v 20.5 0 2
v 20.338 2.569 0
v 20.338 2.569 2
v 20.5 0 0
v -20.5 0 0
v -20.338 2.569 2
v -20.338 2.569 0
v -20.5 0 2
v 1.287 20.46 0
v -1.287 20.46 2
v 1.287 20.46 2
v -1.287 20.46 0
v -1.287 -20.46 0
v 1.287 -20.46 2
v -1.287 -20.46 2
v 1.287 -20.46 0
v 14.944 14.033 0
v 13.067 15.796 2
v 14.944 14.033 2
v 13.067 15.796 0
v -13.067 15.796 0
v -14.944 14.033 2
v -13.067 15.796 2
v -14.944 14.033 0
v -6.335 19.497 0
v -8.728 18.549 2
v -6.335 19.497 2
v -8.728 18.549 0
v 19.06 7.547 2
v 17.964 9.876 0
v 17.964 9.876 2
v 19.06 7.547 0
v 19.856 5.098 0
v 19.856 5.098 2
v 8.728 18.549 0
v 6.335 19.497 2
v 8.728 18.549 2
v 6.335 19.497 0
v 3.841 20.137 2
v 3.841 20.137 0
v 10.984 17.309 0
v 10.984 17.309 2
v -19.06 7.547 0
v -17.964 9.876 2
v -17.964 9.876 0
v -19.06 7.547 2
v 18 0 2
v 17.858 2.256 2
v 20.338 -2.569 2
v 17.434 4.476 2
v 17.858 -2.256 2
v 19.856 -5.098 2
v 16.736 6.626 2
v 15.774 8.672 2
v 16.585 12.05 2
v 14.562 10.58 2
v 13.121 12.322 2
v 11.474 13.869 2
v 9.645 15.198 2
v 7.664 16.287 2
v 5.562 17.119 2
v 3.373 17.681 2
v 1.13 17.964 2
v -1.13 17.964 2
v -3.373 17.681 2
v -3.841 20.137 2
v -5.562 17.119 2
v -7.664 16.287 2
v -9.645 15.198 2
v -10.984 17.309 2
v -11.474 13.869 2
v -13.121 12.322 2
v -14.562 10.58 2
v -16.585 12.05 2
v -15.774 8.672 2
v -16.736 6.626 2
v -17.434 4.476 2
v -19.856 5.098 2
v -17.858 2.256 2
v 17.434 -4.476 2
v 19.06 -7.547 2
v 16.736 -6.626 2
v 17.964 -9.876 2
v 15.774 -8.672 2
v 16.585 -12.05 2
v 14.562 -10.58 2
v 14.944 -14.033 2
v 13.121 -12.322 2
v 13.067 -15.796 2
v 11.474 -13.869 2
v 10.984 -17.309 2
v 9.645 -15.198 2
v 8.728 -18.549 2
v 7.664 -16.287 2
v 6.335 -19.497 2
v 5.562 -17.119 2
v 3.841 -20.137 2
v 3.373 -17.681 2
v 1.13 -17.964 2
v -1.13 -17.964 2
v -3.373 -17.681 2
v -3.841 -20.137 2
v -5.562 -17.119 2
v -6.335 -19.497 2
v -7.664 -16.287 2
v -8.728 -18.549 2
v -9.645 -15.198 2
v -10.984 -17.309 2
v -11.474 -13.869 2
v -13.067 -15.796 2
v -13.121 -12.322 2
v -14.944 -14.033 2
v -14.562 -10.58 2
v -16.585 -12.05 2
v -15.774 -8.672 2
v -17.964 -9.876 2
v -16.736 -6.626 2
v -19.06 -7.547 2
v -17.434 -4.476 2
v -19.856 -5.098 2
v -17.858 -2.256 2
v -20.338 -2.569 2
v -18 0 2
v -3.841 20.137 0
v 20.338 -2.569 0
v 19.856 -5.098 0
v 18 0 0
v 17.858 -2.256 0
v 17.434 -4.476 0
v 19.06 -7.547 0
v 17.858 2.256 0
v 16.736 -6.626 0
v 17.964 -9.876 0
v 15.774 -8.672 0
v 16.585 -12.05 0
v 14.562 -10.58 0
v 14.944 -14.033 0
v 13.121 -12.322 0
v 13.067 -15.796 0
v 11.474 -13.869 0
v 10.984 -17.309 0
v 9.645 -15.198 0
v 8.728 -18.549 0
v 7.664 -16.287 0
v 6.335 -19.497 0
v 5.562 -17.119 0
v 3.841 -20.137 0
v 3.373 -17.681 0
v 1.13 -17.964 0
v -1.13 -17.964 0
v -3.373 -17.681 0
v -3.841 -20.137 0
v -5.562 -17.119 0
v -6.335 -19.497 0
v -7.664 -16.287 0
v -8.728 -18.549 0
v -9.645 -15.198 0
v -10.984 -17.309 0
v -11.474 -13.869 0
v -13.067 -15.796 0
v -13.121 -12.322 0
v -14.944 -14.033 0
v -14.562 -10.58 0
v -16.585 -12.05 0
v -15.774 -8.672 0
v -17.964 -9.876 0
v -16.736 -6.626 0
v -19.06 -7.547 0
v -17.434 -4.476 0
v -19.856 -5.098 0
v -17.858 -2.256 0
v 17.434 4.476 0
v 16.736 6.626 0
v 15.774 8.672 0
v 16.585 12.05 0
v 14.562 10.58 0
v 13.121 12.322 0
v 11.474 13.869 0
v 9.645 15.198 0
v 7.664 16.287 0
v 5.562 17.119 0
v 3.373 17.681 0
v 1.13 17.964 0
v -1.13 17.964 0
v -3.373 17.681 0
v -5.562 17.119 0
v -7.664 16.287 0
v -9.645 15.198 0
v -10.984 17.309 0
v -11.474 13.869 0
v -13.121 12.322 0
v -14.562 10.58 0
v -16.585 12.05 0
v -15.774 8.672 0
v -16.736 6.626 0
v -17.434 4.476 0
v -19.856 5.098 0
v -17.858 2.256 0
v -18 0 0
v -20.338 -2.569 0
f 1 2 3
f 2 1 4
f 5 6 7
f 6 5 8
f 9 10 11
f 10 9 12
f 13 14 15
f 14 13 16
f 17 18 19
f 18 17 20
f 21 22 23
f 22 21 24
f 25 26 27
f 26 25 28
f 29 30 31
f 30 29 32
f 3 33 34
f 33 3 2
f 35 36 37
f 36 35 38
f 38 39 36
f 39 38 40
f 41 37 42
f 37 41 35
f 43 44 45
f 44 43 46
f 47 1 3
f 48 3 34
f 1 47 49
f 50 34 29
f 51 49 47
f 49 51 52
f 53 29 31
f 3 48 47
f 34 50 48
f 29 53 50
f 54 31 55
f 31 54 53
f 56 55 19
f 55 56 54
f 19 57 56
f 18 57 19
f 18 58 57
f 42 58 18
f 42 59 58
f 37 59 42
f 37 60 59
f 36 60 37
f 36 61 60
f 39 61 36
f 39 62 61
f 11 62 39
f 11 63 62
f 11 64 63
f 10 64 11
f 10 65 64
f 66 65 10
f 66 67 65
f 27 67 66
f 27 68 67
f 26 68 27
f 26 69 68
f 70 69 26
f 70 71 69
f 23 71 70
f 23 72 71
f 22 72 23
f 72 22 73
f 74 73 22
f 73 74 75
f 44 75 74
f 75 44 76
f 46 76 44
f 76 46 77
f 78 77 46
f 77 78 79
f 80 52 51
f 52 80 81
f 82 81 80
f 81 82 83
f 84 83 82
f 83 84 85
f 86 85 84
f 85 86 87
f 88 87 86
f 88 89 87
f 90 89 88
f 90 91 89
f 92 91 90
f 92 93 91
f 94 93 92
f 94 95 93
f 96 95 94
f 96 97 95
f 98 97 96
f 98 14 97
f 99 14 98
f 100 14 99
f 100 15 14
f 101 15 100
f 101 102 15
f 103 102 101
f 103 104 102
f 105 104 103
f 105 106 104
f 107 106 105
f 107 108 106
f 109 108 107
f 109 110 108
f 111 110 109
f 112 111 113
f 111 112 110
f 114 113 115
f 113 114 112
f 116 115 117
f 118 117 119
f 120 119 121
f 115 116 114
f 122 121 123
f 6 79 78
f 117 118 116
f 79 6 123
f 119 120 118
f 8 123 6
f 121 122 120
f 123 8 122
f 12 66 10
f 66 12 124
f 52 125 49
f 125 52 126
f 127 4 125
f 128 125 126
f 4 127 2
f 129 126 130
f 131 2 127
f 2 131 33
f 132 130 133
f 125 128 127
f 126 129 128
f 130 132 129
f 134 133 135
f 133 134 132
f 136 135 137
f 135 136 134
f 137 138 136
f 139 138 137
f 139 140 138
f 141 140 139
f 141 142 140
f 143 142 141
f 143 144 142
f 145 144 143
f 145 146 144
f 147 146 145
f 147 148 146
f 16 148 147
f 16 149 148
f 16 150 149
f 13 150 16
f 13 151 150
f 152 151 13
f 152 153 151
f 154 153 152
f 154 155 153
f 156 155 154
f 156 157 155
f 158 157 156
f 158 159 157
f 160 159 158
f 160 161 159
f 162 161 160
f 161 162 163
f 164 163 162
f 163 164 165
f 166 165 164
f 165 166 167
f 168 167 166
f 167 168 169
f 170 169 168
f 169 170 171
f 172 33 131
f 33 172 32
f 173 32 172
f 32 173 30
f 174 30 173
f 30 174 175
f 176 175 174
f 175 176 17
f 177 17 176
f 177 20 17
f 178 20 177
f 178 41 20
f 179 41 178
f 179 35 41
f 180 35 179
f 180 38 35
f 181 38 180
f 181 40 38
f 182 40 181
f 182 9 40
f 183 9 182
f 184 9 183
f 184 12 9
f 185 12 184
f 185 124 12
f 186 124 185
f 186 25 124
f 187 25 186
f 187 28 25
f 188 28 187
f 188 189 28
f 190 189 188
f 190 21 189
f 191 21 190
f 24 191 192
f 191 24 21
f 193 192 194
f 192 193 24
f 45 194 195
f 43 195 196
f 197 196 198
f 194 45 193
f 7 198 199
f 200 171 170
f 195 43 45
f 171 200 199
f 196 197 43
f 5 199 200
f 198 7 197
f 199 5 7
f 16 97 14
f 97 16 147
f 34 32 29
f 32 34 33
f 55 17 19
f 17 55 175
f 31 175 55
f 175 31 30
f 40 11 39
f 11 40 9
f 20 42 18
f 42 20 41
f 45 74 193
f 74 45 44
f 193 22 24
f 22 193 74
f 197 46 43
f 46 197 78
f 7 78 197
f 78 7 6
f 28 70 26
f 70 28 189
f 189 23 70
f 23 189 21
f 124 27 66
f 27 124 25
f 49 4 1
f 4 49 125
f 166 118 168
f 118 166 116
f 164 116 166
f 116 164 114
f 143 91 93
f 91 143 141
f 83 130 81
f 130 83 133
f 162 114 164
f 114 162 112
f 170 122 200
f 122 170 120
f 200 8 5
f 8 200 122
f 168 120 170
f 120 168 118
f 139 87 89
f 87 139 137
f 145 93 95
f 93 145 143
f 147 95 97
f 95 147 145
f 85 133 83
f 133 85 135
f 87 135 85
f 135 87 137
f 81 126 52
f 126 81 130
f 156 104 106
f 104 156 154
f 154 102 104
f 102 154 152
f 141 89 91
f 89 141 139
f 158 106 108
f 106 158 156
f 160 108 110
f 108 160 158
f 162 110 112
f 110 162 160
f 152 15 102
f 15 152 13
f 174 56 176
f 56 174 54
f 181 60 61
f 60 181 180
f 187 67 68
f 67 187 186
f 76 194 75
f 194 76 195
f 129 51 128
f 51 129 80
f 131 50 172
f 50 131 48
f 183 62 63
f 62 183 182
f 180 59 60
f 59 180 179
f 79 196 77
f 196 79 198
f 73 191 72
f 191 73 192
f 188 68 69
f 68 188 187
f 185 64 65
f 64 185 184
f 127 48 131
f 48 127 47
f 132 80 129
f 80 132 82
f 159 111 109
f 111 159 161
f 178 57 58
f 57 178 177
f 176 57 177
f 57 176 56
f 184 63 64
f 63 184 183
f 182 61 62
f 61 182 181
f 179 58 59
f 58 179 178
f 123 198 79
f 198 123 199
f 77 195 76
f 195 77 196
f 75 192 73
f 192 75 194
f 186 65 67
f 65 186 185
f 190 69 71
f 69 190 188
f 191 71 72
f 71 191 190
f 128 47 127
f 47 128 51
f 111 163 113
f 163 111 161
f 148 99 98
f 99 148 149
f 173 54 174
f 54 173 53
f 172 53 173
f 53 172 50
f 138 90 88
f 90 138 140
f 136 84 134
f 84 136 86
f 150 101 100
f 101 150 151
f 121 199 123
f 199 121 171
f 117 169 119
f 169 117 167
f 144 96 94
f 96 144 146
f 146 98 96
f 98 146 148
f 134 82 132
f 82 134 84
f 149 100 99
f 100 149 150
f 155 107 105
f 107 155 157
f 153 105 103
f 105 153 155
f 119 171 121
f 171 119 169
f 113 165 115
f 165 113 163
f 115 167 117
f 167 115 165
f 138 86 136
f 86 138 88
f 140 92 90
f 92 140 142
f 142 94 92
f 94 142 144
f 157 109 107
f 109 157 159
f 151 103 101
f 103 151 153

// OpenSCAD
$fn=50;

difference() {
    cylinder(2,41/2,41/2);
    cylinder(2,36/2,36/2);
}
